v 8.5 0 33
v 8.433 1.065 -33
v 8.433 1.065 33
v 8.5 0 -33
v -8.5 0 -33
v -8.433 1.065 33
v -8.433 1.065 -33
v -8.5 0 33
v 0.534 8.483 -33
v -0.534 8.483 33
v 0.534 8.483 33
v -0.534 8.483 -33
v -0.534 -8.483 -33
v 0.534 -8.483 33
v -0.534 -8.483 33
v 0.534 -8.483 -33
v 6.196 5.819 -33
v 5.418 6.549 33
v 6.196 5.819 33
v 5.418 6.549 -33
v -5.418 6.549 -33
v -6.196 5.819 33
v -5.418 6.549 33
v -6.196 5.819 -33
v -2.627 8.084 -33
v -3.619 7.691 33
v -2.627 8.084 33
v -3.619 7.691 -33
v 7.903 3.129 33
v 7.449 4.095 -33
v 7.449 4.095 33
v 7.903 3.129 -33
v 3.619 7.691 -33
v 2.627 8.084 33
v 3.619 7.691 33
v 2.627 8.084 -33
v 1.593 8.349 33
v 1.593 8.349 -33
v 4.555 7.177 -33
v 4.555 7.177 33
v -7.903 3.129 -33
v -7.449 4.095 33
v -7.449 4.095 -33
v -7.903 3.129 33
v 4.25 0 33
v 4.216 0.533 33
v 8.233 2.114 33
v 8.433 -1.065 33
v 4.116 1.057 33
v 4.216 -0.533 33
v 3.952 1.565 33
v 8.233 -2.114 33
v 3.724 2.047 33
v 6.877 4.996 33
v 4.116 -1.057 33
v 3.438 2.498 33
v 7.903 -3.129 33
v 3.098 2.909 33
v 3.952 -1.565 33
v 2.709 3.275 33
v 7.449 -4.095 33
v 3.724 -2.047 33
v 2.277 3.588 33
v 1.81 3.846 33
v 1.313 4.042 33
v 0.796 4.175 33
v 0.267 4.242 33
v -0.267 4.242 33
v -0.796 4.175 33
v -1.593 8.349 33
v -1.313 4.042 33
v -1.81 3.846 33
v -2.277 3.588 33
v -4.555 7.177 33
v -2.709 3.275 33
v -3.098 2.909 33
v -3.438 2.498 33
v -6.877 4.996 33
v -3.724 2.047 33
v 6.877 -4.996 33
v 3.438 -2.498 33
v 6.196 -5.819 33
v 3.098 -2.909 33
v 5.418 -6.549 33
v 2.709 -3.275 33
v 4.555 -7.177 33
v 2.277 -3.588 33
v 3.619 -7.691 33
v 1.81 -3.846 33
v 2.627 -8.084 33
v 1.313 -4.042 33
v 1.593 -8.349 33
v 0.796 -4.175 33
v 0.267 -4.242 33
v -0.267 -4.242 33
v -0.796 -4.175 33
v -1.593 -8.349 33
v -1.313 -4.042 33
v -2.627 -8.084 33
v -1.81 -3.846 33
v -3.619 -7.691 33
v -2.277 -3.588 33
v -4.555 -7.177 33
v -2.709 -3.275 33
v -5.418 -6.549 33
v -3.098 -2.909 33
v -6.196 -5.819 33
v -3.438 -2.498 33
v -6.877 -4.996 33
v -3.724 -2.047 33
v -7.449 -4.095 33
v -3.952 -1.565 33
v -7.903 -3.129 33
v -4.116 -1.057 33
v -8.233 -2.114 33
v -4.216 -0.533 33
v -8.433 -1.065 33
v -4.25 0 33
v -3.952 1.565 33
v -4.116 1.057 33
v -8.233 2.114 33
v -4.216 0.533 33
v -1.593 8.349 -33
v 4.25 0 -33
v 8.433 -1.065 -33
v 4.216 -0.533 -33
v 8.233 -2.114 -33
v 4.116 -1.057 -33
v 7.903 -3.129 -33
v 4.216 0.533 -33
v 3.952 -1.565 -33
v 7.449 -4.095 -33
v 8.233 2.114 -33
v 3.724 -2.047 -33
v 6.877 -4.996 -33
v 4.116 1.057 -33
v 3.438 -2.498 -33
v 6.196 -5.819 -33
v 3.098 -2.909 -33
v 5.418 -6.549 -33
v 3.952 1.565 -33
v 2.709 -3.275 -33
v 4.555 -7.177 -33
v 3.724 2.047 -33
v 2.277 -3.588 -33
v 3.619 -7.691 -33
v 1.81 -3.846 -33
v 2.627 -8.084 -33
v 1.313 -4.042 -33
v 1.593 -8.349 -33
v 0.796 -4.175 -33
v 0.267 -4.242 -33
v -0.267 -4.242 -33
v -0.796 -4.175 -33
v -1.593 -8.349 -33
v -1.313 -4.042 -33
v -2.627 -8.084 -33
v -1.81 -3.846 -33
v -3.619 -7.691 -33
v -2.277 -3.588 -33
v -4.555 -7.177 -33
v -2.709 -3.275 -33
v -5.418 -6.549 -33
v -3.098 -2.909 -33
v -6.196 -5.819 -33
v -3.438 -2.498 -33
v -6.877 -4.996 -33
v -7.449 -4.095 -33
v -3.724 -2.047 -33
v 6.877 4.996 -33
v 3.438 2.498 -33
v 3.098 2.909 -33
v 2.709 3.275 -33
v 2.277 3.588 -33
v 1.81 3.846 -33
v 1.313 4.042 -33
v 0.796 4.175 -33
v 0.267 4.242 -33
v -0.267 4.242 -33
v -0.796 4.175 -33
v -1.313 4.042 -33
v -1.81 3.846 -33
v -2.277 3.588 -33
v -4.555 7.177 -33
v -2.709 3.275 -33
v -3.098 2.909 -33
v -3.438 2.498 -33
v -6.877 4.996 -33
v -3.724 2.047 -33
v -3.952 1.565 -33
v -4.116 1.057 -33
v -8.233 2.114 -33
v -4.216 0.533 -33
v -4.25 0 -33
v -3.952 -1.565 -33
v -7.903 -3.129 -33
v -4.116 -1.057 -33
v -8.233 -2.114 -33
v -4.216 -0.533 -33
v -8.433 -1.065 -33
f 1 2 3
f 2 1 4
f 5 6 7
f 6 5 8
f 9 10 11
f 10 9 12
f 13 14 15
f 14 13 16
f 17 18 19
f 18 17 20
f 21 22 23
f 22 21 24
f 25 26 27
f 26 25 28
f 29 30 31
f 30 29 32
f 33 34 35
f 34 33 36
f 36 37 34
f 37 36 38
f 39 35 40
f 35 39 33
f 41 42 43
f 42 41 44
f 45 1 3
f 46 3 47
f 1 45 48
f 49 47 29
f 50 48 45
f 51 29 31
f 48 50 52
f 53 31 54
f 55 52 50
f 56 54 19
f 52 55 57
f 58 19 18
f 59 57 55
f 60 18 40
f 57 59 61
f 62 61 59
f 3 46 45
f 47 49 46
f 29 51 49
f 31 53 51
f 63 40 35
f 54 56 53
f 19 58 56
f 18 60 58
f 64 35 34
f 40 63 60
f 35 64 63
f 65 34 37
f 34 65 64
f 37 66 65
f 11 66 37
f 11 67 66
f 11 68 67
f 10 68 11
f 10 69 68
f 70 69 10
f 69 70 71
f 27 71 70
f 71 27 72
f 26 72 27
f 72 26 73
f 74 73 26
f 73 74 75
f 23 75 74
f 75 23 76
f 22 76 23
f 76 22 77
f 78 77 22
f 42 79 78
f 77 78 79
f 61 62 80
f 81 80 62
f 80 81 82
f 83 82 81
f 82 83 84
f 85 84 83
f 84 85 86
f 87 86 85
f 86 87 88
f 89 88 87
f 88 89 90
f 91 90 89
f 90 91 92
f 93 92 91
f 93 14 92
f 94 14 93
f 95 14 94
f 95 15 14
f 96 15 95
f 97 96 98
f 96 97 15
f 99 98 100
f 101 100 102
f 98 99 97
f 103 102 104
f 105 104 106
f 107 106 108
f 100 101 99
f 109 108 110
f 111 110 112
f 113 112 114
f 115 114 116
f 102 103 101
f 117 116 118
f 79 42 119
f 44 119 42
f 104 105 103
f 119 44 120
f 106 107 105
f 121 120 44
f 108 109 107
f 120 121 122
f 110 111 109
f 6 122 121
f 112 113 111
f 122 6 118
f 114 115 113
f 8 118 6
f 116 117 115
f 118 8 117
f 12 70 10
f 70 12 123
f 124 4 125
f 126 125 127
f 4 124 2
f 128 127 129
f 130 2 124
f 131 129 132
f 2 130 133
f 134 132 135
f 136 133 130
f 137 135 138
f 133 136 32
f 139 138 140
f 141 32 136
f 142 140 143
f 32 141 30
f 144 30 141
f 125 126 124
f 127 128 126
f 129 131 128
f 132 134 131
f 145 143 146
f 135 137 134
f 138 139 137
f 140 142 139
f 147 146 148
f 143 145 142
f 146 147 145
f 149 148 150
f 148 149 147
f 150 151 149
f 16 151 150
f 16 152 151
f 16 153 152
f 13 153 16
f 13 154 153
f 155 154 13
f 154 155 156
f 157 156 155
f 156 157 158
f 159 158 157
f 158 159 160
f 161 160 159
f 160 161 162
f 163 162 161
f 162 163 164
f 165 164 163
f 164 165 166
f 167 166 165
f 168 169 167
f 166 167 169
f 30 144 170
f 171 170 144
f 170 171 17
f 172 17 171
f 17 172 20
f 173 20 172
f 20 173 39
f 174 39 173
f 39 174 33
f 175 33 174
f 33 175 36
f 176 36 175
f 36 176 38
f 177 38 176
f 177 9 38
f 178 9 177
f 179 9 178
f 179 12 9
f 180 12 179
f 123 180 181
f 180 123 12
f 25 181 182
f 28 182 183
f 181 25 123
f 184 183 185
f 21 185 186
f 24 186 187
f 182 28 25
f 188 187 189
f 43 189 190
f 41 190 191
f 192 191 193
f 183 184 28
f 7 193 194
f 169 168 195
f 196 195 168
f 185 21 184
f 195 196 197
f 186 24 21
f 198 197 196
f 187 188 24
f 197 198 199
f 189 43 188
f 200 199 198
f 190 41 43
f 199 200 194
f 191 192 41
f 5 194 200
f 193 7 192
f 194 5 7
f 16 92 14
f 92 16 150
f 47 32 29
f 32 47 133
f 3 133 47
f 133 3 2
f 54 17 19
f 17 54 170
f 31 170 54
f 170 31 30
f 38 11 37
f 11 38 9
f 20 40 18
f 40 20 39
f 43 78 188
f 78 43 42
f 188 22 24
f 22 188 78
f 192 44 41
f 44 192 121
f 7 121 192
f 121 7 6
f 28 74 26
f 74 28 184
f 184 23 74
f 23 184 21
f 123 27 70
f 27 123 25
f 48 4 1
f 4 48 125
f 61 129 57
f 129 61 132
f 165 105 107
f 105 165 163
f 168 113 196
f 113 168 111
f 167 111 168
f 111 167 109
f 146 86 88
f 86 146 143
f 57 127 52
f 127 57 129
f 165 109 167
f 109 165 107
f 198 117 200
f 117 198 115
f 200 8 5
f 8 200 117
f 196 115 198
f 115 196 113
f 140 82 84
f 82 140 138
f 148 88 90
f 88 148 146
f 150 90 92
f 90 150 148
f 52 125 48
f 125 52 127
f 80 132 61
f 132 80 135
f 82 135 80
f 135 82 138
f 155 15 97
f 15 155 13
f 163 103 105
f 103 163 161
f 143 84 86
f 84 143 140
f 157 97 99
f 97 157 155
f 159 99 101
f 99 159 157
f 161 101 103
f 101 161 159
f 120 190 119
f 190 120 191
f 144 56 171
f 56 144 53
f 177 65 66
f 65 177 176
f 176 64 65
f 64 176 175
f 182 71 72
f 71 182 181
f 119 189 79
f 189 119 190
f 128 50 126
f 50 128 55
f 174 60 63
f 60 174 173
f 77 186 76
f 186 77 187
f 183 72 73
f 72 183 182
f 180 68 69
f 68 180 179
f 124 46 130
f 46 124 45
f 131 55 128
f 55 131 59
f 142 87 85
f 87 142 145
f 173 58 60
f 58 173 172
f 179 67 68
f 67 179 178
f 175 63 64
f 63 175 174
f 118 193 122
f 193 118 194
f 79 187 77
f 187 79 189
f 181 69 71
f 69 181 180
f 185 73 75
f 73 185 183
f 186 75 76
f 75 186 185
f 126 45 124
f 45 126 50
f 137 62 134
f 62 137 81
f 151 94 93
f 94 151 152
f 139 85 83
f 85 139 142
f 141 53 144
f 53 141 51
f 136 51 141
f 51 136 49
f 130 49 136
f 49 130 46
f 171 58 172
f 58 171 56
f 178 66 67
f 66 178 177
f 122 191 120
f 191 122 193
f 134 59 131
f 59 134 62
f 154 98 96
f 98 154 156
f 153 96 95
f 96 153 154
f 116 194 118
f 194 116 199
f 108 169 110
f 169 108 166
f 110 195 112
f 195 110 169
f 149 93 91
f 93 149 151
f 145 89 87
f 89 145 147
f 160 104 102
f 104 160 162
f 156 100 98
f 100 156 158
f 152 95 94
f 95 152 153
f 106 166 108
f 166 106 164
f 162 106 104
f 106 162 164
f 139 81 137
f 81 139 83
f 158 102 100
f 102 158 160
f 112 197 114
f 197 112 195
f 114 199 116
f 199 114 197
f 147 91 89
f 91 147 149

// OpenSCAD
$fn = 50;


difference() {
	union() {
		translate(v = [0, 0, -33.0000000000]) {
			cylinder(h = 66, r = 8.5000000000);
		}
	}
	union() {
		translate(v = [0, 0, -100.0000000000]) {
			cylinder(h = 200, r = 4.2500000000);
		}
	}
}
